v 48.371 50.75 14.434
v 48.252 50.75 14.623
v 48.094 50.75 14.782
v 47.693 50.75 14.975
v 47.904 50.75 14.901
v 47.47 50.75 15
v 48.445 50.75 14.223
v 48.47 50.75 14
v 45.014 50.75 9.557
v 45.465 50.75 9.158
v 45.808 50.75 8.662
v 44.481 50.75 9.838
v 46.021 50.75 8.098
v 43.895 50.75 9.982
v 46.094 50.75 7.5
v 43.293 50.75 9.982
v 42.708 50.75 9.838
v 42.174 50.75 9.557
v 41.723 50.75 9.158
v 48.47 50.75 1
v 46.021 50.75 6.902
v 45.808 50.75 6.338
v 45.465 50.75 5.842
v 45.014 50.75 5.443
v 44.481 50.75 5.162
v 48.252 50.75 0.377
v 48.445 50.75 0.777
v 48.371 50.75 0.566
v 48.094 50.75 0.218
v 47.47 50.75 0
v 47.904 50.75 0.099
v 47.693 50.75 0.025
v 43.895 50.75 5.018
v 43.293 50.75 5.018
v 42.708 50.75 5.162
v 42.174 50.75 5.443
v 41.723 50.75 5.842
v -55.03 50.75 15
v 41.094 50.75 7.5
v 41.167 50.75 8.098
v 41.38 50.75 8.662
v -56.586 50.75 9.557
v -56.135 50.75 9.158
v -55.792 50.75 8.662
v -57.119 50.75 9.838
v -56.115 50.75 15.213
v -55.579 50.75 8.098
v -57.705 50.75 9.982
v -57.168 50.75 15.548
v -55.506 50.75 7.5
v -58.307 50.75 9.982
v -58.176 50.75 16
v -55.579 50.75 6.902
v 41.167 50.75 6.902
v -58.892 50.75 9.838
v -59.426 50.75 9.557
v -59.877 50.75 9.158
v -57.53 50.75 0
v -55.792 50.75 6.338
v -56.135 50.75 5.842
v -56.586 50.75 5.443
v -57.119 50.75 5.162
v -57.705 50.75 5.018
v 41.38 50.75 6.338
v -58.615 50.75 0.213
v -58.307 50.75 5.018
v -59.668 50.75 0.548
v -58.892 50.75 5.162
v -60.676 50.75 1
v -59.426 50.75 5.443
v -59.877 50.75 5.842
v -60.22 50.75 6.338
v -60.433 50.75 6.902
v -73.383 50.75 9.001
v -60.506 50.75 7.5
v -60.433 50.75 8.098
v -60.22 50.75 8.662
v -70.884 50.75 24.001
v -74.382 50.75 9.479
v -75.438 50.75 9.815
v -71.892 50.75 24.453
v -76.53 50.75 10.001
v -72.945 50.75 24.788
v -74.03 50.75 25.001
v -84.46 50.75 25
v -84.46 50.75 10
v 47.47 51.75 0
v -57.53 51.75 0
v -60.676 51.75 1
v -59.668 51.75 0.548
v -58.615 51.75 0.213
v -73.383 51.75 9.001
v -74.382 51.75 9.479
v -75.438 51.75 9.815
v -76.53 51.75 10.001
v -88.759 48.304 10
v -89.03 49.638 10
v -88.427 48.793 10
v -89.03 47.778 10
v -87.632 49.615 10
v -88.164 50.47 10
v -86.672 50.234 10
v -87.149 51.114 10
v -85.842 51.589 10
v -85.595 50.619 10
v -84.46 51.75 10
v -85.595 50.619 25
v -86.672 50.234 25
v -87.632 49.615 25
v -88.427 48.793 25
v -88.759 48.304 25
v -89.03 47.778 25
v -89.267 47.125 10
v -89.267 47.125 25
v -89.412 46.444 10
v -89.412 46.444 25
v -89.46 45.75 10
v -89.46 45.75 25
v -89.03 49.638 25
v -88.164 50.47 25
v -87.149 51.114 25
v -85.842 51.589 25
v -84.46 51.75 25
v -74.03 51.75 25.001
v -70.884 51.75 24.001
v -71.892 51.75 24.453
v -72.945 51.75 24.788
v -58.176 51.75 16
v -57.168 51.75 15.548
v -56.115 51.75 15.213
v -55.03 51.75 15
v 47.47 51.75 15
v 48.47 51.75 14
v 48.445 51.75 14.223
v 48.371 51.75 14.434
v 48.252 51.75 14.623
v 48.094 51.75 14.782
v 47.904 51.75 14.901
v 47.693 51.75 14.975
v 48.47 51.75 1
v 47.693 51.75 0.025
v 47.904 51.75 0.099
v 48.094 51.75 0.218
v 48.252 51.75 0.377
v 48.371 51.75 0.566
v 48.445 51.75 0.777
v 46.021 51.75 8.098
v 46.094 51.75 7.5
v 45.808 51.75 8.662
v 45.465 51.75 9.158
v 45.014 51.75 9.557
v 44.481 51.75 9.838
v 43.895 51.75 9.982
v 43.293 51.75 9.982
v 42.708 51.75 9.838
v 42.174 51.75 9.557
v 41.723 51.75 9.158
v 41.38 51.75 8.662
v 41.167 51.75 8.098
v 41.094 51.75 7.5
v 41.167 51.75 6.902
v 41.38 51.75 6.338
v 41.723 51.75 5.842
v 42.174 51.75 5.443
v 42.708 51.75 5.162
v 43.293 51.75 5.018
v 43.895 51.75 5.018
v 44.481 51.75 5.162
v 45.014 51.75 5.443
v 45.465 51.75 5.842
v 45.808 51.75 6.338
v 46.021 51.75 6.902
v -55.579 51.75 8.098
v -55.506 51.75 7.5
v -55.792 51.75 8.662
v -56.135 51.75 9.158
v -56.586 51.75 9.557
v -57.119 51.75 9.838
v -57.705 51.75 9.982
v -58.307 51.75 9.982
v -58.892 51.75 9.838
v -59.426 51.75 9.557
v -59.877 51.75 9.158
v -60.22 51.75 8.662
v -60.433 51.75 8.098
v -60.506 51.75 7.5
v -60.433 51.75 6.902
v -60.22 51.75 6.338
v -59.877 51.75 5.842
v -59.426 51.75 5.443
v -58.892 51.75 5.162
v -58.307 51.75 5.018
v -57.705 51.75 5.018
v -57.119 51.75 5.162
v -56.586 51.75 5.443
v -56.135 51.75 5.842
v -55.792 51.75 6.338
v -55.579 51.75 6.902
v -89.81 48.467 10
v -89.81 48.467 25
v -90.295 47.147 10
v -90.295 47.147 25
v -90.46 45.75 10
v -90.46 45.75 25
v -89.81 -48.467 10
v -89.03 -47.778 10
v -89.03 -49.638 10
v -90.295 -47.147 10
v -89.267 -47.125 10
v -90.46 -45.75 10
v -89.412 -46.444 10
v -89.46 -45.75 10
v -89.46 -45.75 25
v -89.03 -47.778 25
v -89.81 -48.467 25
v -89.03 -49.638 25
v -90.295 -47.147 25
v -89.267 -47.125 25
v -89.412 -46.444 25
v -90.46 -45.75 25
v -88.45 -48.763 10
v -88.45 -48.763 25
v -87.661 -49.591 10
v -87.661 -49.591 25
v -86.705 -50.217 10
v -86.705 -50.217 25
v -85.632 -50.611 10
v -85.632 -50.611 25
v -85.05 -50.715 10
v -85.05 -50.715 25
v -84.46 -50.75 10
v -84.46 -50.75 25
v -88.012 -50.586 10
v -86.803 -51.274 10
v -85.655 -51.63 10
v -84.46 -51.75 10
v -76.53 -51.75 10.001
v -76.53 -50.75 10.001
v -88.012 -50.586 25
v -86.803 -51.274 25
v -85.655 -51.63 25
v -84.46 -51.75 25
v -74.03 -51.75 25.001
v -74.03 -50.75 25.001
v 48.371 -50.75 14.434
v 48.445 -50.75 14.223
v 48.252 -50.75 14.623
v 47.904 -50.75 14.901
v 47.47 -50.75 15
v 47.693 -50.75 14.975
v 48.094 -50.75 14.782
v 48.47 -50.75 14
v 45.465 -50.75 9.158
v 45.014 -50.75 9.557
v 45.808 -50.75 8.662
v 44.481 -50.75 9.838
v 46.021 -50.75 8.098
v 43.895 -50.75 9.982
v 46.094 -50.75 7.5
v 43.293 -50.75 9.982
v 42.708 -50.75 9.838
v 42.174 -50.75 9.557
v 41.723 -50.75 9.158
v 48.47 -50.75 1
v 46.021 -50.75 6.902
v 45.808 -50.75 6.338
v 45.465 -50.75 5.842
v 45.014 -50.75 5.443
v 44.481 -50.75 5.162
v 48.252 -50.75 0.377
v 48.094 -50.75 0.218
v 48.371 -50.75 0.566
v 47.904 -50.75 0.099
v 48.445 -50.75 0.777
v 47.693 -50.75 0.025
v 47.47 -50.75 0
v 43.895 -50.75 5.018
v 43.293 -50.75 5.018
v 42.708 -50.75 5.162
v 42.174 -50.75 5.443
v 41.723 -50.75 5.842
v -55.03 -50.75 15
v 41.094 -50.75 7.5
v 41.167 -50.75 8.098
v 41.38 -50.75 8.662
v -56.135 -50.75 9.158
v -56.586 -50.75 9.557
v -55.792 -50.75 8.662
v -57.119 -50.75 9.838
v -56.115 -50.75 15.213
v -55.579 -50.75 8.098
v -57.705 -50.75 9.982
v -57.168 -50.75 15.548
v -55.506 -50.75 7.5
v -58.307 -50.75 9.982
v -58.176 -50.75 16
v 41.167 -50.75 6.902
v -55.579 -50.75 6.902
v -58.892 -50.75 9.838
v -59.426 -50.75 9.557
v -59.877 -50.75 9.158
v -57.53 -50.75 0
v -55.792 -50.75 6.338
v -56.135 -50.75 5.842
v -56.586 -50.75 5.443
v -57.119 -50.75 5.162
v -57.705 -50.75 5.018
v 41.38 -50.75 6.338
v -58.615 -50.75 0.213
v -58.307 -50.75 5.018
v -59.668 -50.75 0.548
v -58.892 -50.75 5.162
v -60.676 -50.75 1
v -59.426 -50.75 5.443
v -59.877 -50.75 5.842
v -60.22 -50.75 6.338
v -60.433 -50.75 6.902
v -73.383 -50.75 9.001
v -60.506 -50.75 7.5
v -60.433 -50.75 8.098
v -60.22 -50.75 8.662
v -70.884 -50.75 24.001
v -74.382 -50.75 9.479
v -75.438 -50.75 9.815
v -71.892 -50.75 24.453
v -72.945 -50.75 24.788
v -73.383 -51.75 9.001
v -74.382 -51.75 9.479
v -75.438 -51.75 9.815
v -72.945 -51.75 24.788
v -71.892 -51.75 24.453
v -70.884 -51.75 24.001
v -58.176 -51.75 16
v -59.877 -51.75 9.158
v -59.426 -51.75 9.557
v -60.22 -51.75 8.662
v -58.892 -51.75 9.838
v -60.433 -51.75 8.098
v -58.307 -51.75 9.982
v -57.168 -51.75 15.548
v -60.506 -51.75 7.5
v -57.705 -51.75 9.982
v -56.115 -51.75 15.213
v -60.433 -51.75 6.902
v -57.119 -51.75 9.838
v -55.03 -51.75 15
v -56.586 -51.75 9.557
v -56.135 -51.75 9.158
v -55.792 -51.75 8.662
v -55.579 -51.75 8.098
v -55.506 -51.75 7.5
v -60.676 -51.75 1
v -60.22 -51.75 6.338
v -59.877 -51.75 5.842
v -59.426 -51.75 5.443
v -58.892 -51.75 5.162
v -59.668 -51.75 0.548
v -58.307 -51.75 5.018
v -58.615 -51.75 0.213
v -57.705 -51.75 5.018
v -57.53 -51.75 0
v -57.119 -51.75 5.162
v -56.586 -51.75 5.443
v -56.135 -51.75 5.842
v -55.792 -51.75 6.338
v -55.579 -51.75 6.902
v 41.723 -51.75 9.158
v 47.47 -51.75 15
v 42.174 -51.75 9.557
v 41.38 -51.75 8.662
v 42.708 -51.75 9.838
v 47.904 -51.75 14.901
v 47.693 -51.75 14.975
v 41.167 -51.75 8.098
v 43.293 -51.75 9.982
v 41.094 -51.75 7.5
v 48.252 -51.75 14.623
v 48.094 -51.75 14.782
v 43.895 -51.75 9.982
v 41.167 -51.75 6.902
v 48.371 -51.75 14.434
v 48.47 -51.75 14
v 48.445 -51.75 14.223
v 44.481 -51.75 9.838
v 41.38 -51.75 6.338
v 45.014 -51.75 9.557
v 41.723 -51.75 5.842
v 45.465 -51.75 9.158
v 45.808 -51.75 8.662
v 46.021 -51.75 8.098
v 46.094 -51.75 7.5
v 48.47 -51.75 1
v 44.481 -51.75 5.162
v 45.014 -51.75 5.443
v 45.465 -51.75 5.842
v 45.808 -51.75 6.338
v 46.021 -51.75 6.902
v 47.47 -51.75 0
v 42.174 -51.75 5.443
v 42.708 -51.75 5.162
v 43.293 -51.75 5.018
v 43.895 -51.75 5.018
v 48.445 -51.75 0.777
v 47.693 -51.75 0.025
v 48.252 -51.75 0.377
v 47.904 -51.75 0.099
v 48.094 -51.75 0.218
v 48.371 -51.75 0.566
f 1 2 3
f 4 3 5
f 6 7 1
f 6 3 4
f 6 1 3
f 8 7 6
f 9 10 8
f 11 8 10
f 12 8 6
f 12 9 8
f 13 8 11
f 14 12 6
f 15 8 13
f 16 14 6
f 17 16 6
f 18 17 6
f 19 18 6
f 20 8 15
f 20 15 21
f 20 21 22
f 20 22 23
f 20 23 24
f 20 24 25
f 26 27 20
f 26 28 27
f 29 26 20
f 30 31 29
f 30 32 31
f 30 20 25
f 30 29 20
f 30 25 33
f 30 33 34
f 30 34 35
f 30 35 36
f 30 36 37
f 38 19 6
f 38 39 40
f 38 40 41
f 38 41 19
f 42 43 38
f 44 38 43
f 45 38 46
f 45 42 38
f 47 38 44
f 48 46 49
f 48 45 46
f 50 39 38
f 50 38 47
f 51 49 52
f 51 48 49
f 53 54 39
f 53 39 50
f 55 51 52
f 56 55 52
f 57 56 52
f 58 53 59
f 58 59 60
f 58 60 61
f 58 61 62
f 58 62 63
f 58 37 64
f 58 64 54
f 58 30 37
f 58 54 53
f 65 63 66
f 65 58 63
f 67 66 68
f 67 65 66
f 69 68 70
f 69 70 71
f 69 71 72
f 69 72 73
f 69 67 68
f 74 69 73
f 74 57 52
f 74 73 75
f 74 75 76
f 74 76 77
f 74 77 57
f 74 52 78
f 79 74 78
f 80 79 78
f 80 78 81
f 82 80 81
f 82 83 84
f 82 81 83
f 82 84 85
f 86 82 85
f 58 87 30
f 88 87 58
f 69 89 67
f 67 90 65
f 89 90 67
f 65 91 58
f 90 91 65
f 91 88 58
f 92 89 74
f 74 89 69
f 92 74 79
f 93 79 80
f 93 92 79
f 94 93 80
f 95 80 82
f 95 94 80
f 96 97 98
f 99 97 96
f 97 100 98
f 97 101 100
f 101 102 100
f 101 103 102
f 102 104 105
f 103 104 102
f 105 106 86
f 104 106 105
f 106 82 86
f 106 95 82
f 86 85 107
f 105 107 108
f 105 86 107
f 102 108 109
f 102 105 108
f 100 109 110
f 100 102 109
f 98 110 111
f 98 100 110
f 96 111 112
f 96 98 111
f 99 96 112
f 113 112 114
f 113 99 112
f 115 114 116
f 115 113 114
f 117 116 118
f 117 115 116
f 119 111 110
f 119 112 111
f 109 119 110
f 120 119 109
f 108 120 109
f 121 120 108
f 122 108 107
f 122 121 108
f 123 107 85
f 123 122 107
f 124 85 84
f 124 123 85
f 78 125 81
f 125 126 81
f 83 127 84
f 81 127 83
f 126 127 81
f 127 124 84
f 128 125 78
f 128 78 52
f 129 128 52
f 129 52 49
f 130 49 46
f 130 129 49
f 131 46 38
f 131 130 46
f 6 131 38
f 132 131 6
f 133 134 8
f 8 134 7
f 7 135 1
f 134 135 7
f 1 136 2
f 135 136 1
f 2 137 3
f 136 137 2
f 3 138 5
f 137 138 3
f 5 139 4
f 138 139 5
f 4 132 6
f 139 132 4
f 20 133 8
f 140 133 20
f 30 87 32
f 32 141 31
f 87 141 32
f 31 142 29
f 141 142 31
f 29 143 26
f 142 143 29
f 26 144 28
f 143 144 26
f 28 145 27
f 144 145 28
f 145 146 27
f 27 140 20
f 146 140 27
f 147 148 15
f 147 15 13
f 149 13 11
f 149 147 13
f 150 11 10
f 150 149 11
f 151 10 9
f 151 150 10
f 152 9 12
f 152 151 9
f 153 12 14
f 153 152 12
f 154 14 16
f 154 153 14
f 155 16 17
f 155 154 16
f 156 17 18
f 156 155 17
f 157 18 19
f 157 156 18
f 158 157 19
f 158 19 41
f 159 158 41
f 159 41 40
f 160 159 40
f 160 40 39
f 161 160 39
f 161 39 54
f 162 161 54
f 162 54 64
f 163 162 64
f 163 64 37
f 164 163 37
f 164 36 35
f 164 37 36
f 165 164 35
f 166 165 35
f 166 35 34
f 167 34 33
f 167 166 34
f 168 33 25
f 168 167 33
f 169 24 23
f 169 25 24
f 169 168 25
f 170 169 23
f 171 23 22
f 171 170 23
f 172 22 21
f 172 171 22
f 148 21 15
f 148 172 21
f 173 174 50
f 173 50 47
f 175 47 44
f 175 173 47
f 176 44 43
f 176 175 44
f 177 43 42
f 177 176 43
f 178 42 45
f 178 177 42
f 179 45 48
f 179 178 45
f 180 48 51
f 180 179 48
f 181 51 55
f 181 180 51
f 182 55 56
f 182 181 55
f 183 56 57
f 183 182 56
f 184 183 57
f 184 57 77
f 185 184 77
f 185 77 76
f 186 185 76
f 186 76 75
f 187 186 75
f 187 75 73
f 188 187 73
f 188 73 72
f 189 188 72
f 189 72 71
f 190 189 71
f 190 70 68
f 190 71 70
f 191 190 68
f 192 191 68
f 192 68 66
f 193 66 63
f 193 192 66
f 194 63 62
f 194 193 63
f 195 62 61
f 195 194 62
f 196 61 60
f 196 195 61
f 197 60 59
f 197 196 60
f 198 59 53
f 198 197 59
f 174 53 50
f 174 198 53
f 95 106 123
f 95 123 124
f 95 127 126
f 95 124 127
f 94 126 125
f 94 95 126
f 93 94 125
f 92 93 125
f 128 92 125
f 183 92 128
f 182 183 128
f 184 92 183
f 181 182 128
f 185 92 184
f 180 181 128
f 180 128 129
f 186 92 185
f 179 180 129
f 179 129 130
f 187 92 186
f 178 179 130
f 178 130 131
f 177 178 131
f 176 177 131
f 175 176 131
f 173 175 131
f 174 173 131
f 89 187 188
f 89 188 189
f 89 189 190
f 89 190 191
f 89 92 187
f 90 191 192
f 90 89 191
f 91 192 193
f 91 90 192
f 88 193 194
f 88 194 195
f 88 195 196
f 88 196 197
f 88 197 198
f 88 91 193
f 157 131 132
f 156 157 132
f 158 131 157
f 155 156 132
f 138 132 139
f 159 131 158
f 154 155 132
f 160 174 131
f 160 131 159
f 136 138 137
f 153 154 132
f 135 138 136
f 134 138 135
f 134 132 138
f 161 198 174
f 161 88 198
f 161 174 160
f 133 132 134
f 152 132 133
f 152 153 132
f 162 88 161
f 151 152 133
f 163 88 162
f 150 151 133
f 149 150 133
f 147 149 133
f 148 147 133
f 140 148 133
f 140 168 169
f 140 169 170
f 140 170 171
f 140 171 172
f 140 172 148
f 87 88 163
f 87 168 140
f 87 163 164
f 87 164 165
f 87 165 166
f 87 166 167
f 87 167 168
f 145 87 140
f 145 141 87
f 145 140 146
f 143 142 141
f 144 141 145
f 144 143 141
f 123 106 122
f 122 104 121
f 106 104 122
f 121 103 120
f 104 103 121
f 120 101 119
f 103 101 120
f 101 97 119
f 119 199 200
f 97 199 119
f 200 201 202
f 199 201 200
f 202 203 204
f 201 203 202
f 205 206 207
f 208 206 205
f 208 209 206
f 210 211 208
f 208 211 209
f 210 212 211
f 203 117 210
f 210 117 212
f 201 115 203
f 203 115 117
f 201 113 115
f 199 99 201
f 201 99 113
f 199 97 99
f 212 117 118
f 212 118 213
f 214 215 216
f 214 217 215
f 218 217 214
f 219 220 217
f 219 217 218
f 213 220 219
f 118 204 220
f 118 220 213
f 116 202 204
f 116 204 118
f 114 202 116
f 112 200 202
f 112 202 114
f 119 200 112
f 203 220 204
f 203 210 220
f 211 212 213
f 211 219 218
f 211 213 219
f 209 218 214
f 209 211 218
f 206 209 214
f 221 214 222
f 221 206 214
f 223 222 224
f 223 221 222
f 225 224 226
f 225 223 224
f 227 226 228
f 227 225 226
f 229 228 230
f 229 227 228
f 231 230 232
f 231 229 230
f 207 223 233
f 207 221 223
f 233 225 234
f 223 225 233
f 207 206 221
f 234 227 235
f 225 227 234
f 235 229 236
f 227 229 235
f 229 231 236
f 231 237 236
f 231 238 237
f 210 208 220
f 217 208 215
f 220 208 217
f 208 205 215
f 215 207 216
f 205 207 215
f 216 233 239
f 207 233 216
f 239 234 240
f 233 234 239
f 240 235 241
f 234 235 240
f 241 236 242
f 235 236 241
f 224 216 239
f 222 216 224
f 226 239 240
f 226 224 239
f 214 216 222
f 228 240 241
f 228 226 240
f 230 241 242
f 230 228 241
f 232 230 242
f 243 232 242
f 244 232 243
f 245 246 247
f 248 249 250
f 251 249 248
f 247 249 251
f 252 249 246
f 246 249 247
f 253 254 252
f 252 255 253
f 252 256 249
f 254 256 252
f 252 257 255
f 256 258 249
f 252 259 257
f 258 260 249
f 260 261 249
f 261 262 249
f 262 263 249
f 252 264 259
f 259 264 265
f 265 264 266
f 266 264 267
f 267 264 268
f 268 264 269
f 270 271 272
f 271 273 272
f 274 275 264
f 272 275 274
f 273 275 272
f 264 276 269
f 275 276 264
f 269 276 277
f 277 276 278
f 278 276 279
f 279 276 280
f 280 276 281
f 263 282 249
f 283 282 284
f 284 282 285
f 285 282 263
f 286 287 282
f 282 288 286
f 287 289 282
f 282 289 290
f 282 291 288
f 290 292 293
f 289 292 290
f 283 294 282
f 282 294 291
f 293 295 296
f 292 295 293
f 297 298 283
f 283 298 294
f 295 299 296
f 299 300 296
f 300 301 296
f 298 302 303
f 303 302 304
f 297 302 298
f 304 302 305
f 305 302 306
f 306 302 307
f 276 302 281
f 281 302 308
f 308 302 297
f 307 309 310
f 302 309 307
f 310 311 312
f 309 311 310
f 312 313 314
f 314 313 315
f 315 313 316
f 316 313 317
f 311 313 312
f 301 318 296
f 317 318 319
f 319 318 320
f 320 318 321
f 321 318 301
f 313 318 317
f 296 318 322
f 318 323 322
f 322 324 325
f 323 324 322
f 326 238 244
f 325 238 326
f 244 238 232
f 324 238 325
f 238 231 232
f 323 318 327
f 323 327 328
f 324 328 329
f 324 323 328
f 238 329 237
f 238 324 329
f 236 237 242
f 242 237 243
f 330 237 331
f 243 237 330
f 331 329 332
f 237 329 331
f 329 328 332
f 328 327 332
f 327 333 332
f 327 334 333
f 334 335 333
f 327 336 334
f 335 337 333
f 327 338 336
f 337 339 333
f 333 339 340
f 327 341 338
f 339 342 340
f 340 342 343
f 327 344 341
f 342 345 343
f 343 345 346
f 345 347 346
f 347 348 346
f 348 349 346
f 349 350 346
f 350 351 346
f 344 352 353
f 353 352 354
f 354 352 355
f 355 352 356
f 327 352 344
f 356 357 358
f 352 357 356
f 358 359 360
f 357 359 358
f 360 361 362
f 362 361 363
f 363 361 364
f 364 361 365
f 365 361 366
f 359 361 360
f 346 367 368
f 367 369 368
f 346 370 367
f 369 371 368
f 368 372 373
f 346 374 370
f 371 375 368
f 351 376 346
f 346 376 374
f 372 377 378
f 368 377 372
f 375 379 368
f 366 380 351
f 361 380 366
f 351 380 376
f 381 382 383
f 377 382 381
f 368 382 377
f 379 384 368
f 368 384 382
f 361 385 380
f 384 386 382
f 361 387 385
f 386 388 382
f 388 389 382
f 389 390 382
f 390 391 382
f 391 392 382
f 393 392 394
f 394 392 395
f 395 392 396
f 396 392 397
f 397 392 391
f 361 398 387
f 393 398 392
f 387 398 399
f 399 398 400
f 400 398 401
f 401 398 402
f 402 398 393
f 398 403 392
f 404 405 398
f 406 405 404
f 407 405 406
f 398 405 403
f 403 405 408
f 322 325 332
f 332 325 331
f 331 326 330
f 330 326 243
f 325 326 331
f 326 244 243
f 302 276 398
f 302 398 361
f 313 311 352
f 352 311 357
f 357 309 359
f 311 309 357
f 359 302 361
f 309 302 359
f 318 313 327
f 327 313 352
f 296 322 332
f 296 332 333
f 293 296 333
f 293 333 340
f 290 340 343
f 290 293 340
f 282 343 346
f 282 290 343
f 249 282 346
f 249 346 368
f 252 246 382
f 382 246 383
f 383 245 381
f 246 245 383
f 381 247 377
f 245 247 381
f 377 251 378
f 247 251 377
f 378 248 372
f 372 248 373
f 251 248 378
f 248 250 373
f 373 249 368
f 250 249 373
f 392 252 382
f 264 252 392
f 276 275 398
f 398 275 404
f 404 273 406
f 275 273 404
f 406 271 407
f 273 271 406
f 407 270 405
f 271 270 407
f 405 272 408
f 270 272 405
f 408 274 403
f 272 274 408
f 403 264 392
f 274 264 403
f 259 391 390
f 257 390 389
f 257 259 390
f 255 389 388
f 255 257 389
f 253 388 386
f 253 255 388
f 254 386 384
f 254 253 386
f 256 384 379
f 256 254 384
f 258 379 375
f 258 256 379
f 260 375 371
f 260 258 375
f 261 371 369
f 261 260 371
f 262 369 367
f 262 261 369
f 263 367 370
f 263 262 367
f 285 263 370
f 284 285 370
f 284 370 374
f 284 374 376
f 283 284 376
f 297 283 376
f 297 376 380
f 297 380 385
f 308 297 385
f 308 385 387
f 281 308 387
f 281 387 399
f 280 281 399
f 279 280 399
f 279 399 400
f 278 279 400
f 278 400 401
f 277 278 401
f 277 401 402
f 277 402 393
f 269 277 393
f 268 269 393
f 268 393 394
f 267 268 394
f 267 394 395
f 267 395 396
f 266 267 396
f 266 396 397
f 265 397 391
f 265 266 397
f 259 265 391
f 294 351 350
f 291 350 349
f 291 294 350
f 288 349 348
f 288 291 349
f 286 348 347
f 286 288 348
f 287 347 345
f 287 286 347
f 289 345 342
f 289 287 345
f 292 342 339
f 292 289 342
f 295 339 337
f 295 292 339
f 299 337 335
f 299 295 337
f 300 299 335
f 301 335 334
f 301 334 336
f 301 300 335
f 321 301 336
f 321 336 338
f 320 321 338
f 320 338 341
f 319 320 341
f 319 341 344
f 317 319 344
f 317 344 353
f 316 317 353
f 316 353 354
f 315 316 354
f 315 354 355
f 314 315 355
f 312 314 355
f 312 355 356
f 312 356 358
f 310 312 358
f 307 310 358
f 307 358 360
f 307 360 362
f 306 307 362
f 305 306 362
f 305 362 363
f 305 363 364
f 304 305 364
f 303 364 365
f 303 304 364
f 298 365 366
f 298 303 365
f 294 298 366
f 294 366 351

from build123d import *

# Parameters (mm, degrees)
SKETCH002_R  = 2.5
PAD001_DEPTH = 51.75
PAD_DEPTH    = 30


with BuildPart() as face_body:
    # Sketch002 → Pad001 (new body, symmetric)
    with BuildSketch(Plane.XZ):
        with BuildLine():
            Line((-57.529972, 0), (47.470028, 0))
            ThreePointArc((47.470028, 0), (48.177135, 0.292893), (48.470028, 1))
            Line((48.470028, 14), (48.470028, 1))
            ThreePointArc((48.470028, 14), (48.177135, 14.707107), (47.470028, 15))
            Line((-55.029972, 15), (47.470028, 15))
            ThreePointArc((-58.176393, 16), (-56.645942, 15.365461), (-55.029972, 15))
            Line((-70.88355, 24.00071), (-58.176393, 16))
            ThreePointArc((-70.88355, 24.00071), (-72.414001, 24.635249), (-74.029972, 25.00071))
            Line((-89.029972, 25), (-74.029972, 25.00071))
            Line((-90.529972, 25), (-89.029972, 25))
            Line((-90.529972, 25), (-90.529972, 10))
            Line((-90.529972, 10), (-89.029972, 10))
            Line((-89.029972, 10), (-76.529972, 10.000632))
            ThreePointArc((-73.383499, 9.000791), (-74.904353, 9.665557), (-76.529972, 10.000632))
            Line((-73.383499, 9.000791), (-60.676393, 1))
            ThreePointArc((-60.676393, 1), (-59.145942, 0.365461), (-57.529972, 0))
        make_face()
        with Locations((-58.005918, 7.5)):
            Circle(SKETCH002_R, mode=Mode.SUBTRACT)
        with Locations((43.594082, 7.5)):
            Circle(SKETCH002_R, mode=Mode.SUBTRACT)
    extrude(amount=PAD001_DEPTH, both=True)


with BuildPart() as base_body:
    # Sketch001 → Pad (new body)
    with BuildSketch(Plane.XY):
        with BuildLine():
            Line((-89.459922, 45.75), (-89.459922, -45.75))
            ThreePointArc((-89.459922, -45.75), (-87.995456, -49.285534), (-84.459922, -50.75))
            Line((48.594082, -50.75), (-84.459922, -50.75))
            Line((48.594082, -50.75), (48.594082, -51.75))
            Line((-84.459922, -51.75), (48.594082, -51.75))
            ThreePointArc((-90.459922, -45.75), (-88.702563, -49.992641), (-84.459922, -51.75))
            Line((-90.459922, 45.750008), (-90.459922, -45.75))
            ThreePointArc((-84.459922, 51.75), (-88.70256, 49.992644), (-90.459922, 45.750008))
            Line((-84.459922, 51.75), (48.594082, 51.75))
            Line((48.594082, 50.75), (48.594082, 51.75))
            Line((48.594082, 50.75), (-84.459922, 50.75))
            ThreePointArc((-84.459922, 50.75), (-87.995456, 49.285534), (-89.459922, 45.75))
        make_face()
    extrude(amount=PAD_DEPTH)

    # Boolean: intersect Face.Body
    add(face_body.part, mode=Mode.INTERSECT)


solid = base_body.part
